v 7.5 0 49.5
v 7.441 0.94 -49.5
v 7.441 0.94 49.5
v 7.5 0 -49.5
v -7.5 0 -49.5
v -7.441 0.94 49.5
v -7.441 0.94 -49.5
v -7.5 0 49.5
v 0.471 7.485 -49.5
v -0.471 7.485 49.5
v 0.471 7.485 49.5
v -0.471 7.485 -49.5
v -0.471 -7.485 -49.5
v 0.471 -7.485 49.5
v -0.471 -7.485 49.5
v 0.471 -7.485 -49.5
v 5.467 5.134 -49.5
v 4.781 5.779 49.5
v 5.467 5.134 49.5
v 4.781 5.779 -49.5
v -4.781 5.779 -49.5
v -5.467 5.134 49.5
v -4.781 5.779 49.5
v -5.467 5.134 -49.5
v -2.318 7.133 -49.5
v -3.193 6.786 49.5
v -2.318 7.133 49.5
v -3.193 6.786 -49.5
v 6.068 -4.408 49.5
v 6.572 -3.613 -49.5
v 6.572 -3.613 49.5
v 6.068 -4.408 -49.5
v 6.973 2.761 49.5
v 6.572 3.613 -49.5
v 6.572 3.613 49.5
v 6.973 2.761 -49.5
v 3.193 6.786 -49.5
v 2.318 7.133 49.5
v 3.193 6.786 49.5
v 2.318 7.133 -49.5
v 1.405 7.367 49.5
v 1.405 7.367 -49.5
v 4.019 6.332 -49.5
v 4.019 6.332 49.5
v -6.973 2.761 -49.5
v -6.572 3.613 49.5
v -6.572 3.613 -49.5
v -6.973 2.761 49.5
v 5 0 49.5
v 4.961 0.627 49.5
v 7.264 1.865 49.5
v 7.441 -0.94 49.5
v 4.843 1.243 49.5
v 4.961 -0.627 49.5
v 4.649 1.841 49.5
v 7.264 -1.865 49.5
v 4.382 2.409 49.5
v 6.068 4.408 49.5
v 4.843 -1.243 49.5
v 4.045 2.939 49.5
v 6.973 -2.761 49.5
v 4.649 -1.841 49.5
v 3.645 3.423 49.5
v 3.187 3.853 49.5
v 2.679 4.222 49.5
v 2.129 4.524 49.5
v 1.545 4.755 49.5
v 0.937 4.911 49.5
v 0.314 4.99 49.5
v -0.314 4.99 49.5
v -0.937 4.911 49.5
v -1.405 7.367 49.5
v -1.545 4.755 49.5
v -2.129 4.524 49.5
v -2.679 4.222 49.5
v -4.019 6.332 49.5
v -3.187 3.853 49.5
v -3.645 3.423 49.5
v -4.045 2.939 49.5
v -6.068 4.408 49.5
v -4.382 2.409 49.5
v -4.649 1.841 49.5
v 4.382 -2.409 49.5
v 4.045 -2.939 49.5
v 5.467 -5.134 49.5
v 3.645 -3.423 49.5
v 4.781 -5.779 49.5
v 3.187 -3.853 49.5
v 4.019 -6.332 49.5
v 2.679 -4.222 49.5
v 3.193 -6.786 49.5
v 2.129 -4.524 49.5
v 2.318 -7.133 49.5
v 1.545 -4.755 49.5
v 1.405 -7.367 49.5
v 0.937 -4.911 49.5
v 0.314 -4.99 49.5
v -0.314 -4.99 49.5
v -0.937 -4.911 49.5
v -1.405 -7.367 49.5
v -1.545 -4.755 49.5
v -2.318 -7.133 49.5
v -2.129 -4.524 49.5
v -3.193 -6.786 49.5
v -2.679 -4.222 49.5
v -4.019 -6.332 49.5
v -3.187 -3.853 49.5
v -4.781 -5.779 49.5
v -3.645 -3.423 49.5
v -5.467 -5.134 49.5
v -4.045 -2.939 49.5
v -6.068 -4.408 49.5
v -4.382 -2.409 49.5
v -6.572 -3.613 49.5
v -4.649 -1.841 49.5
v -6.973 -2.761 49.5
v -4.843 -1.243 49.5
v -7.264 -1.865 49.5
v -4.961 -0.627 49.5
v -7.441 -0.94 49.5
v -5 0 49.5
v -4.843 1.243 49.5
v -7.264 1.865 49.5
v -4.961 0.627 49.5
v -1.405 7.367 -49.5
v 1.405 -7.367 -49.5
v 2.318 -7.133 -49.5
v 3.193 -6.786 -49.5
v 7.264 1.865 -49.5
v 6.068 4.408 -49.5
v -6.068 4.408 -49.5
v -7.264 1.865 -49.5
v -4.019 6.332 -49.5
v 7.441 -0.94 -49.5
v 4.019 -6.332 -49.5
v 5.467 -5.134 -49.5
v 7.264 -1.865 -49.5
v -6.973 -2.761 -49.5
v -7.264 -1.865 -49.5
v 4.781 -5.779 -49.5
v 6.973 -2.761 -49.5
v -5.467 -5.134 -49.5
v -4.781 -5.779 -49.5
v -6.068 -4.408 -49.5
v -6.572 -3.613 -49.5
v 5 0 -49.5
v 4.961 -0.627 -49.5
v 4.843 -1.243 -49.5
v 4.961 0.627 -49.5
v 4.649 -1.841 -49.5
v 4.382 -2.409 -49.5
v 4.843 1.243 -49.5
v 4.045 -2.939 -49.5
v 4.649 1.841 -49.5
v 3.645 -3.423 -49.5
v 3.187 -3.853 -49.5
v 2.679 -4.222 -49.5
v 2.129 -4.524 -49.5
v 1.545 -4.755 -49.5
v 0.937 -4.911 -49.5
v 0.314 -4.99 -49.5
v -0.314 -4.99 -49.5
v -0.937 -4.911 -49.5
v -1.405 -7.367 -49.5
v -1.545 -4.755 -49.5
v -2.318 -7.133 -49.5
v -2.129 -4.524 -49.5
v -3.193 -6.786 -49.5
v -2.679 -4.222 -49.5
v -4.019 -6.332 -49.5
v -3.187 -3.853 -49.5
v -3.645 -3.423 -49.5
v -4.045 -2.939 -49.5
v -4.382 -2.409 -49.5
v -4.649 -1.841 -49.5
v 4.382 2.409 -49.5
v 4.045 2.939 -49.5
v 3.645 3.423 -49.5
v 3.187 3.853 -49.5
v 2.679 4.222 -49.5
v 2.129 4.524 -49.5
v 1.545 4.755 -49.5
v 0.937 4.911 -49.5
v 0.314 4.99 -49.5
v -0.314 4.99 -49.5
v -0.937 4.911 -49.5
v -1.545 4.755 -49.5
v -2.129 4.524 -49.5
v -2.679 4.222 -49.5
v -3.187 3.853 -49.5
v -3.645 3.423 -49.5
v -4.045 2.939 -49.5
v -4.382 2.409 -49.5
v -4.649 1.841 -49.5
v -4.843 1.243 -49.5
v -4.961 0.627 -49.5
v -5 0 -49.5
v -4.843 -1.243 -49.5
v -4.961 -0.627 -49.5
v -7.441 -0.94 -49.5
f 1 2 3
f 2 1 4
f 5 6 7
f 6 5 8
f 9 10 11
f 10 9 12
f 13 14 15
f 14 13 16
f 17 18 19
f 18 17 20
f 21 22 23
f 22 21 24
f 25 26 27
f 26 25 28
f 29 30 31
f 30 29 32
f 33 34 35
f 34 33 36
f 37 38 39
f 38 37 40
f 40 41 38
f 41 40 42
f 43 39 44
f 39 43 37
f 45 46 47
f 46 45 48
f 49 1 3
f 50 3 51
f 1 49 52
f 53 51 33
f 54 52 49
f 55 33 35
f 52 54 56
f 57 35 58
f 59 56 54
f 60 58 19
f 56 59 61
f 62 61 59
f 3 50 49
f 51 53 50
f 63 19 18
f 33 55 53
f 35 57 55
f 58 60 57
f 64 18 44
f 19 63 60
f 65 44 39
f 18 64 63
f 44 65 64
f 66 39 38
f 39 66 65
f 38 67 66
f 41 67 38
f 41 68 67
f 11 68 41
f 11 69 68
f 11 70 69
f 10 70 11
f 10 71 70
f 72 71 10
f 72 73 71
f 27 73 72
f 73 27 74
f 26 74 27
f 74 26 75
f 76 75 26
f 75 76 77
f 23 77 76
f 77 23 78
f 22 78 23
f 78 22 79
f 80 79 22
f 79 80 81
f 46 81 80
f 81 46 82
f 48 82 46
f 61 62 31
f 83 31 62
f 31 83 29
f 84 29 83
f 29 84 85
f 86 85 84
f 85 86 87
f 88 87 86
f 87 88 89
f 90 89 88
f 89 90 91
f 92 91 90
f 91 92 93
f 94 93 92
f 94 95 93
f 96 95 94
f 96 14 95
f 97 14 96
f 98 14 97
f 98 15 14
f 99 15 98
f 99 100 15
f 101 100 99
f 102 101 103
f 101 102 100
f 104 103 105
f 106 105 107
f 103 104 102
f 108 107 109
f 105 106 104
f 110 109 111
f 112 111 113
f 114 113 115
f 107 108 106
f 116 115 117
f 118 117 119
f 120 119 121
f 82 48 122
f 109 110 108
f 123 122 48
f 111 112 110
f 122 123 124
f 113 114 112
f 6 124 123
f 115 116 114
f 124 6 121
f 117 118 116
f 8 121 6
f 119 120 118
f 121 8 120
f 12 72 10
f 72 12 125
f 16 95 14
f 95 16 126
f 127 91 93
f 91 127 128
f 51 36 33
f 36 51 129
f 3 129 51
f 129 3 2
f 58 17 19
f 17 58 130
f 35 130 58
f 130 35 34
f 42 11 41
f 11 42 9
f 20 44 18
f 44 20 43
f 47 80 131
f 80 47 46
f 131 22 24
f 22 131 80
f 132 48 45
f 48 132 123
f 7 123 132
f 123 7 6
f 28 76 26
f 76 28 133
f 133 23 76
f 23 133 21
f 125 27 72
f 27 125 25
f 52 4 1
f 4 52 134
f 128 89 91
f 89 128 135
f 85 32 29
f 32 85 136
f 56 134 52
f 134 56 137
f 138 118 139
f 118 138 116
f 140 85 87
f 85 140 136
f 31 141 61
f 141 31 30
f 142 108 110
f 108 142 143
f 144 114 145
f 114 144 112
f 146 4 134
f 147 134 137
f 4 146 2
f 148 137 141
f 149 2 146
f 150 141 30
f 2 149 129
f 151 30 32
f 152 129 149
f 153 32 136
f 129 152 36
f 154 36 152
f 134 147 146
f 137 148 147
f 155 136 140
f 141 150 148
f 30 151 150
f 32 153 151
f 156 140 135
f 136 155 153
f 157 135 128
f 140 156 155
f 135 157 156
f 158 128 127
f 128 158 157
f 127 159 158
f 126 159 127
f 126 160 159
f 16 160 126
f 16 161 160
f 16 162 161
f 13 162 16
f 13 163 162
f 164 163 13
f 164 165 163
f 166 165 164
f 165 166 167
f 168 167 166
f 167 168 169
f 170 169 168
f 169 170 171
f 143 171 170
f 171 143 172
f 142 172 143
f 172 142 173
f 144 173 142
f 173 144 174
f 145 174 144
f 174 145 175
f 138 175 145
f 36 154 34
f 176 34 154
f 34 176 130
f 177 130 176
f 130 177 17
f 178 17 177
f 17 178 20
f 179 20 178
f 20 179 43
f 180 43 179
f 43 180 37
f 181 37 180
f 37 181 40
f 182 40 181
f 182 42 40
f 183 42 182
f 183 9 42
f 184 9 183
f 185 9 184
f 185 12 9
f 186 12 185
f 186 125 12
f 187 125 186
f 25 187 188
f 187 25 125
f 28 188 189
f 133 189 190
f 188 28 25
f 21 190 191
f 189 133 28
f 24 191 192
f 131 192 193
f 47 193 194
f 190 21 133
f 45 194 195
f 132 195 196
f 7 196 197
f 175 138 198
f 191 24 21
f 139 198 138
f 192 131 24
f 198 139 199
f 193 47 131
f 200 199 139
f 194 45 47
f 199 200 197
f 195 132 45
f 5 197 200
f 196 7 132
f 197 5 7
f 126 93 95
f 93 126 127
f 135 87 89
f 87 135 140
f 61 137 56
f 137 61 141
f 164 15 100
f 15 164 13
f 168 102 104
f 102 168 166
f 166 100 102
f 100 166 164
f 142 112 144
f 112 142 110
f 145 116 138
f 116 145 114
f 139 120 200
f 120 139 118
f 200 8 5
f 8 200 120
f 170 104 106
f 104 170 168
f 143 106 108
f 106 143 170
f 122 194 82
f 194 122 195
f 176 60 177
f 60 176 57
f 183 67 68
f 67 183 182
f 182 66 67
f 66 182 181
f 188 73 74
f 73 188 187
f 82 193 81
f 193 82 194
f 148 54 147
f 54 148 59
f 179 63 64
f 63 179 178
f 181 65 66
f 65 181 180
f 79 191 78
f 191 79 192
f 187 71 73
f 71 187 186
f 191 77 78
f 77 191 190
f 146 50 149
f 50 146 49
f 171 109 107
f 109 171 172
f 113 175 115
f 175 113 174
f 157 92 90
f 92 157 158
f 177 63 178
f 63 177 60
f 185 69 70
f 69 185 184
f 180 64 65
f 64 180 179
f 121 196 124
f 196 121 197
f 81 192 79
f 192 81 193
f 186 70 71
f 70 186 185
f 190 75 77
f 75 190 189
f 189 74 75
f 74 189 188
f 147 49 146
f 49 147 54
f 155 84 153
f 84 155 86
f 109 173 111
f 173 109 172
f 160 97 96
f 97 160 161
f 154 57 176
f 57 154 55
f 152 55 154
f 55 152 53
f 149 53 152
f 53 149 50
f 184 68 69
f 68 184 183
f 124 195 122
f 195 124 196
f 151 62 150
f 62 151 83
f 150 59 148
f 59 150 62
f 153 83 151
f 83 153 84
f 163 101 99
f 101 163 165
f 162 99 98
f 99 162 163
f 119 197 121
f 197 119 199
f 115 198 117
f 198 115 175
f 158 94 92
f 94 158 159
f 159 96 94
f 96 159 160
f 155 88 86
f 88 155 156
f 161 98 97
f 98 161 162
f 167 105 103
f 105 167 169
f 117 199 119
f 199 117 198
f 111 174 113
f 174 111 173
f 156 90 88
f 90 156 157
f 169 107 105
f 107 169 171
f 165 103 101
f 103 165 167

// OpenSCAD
$fn = 50;


difference() {
	union() {
		translate(v = [0, 0, -49.5000000000]) {
			cylinder(h = 99, r = 7.5000000000);
		}
	}
	union() {
		translate(v = [0, 0, -100.0000000000]) {
			cylinder(h = 200, r = 5);
		}
	}
}
